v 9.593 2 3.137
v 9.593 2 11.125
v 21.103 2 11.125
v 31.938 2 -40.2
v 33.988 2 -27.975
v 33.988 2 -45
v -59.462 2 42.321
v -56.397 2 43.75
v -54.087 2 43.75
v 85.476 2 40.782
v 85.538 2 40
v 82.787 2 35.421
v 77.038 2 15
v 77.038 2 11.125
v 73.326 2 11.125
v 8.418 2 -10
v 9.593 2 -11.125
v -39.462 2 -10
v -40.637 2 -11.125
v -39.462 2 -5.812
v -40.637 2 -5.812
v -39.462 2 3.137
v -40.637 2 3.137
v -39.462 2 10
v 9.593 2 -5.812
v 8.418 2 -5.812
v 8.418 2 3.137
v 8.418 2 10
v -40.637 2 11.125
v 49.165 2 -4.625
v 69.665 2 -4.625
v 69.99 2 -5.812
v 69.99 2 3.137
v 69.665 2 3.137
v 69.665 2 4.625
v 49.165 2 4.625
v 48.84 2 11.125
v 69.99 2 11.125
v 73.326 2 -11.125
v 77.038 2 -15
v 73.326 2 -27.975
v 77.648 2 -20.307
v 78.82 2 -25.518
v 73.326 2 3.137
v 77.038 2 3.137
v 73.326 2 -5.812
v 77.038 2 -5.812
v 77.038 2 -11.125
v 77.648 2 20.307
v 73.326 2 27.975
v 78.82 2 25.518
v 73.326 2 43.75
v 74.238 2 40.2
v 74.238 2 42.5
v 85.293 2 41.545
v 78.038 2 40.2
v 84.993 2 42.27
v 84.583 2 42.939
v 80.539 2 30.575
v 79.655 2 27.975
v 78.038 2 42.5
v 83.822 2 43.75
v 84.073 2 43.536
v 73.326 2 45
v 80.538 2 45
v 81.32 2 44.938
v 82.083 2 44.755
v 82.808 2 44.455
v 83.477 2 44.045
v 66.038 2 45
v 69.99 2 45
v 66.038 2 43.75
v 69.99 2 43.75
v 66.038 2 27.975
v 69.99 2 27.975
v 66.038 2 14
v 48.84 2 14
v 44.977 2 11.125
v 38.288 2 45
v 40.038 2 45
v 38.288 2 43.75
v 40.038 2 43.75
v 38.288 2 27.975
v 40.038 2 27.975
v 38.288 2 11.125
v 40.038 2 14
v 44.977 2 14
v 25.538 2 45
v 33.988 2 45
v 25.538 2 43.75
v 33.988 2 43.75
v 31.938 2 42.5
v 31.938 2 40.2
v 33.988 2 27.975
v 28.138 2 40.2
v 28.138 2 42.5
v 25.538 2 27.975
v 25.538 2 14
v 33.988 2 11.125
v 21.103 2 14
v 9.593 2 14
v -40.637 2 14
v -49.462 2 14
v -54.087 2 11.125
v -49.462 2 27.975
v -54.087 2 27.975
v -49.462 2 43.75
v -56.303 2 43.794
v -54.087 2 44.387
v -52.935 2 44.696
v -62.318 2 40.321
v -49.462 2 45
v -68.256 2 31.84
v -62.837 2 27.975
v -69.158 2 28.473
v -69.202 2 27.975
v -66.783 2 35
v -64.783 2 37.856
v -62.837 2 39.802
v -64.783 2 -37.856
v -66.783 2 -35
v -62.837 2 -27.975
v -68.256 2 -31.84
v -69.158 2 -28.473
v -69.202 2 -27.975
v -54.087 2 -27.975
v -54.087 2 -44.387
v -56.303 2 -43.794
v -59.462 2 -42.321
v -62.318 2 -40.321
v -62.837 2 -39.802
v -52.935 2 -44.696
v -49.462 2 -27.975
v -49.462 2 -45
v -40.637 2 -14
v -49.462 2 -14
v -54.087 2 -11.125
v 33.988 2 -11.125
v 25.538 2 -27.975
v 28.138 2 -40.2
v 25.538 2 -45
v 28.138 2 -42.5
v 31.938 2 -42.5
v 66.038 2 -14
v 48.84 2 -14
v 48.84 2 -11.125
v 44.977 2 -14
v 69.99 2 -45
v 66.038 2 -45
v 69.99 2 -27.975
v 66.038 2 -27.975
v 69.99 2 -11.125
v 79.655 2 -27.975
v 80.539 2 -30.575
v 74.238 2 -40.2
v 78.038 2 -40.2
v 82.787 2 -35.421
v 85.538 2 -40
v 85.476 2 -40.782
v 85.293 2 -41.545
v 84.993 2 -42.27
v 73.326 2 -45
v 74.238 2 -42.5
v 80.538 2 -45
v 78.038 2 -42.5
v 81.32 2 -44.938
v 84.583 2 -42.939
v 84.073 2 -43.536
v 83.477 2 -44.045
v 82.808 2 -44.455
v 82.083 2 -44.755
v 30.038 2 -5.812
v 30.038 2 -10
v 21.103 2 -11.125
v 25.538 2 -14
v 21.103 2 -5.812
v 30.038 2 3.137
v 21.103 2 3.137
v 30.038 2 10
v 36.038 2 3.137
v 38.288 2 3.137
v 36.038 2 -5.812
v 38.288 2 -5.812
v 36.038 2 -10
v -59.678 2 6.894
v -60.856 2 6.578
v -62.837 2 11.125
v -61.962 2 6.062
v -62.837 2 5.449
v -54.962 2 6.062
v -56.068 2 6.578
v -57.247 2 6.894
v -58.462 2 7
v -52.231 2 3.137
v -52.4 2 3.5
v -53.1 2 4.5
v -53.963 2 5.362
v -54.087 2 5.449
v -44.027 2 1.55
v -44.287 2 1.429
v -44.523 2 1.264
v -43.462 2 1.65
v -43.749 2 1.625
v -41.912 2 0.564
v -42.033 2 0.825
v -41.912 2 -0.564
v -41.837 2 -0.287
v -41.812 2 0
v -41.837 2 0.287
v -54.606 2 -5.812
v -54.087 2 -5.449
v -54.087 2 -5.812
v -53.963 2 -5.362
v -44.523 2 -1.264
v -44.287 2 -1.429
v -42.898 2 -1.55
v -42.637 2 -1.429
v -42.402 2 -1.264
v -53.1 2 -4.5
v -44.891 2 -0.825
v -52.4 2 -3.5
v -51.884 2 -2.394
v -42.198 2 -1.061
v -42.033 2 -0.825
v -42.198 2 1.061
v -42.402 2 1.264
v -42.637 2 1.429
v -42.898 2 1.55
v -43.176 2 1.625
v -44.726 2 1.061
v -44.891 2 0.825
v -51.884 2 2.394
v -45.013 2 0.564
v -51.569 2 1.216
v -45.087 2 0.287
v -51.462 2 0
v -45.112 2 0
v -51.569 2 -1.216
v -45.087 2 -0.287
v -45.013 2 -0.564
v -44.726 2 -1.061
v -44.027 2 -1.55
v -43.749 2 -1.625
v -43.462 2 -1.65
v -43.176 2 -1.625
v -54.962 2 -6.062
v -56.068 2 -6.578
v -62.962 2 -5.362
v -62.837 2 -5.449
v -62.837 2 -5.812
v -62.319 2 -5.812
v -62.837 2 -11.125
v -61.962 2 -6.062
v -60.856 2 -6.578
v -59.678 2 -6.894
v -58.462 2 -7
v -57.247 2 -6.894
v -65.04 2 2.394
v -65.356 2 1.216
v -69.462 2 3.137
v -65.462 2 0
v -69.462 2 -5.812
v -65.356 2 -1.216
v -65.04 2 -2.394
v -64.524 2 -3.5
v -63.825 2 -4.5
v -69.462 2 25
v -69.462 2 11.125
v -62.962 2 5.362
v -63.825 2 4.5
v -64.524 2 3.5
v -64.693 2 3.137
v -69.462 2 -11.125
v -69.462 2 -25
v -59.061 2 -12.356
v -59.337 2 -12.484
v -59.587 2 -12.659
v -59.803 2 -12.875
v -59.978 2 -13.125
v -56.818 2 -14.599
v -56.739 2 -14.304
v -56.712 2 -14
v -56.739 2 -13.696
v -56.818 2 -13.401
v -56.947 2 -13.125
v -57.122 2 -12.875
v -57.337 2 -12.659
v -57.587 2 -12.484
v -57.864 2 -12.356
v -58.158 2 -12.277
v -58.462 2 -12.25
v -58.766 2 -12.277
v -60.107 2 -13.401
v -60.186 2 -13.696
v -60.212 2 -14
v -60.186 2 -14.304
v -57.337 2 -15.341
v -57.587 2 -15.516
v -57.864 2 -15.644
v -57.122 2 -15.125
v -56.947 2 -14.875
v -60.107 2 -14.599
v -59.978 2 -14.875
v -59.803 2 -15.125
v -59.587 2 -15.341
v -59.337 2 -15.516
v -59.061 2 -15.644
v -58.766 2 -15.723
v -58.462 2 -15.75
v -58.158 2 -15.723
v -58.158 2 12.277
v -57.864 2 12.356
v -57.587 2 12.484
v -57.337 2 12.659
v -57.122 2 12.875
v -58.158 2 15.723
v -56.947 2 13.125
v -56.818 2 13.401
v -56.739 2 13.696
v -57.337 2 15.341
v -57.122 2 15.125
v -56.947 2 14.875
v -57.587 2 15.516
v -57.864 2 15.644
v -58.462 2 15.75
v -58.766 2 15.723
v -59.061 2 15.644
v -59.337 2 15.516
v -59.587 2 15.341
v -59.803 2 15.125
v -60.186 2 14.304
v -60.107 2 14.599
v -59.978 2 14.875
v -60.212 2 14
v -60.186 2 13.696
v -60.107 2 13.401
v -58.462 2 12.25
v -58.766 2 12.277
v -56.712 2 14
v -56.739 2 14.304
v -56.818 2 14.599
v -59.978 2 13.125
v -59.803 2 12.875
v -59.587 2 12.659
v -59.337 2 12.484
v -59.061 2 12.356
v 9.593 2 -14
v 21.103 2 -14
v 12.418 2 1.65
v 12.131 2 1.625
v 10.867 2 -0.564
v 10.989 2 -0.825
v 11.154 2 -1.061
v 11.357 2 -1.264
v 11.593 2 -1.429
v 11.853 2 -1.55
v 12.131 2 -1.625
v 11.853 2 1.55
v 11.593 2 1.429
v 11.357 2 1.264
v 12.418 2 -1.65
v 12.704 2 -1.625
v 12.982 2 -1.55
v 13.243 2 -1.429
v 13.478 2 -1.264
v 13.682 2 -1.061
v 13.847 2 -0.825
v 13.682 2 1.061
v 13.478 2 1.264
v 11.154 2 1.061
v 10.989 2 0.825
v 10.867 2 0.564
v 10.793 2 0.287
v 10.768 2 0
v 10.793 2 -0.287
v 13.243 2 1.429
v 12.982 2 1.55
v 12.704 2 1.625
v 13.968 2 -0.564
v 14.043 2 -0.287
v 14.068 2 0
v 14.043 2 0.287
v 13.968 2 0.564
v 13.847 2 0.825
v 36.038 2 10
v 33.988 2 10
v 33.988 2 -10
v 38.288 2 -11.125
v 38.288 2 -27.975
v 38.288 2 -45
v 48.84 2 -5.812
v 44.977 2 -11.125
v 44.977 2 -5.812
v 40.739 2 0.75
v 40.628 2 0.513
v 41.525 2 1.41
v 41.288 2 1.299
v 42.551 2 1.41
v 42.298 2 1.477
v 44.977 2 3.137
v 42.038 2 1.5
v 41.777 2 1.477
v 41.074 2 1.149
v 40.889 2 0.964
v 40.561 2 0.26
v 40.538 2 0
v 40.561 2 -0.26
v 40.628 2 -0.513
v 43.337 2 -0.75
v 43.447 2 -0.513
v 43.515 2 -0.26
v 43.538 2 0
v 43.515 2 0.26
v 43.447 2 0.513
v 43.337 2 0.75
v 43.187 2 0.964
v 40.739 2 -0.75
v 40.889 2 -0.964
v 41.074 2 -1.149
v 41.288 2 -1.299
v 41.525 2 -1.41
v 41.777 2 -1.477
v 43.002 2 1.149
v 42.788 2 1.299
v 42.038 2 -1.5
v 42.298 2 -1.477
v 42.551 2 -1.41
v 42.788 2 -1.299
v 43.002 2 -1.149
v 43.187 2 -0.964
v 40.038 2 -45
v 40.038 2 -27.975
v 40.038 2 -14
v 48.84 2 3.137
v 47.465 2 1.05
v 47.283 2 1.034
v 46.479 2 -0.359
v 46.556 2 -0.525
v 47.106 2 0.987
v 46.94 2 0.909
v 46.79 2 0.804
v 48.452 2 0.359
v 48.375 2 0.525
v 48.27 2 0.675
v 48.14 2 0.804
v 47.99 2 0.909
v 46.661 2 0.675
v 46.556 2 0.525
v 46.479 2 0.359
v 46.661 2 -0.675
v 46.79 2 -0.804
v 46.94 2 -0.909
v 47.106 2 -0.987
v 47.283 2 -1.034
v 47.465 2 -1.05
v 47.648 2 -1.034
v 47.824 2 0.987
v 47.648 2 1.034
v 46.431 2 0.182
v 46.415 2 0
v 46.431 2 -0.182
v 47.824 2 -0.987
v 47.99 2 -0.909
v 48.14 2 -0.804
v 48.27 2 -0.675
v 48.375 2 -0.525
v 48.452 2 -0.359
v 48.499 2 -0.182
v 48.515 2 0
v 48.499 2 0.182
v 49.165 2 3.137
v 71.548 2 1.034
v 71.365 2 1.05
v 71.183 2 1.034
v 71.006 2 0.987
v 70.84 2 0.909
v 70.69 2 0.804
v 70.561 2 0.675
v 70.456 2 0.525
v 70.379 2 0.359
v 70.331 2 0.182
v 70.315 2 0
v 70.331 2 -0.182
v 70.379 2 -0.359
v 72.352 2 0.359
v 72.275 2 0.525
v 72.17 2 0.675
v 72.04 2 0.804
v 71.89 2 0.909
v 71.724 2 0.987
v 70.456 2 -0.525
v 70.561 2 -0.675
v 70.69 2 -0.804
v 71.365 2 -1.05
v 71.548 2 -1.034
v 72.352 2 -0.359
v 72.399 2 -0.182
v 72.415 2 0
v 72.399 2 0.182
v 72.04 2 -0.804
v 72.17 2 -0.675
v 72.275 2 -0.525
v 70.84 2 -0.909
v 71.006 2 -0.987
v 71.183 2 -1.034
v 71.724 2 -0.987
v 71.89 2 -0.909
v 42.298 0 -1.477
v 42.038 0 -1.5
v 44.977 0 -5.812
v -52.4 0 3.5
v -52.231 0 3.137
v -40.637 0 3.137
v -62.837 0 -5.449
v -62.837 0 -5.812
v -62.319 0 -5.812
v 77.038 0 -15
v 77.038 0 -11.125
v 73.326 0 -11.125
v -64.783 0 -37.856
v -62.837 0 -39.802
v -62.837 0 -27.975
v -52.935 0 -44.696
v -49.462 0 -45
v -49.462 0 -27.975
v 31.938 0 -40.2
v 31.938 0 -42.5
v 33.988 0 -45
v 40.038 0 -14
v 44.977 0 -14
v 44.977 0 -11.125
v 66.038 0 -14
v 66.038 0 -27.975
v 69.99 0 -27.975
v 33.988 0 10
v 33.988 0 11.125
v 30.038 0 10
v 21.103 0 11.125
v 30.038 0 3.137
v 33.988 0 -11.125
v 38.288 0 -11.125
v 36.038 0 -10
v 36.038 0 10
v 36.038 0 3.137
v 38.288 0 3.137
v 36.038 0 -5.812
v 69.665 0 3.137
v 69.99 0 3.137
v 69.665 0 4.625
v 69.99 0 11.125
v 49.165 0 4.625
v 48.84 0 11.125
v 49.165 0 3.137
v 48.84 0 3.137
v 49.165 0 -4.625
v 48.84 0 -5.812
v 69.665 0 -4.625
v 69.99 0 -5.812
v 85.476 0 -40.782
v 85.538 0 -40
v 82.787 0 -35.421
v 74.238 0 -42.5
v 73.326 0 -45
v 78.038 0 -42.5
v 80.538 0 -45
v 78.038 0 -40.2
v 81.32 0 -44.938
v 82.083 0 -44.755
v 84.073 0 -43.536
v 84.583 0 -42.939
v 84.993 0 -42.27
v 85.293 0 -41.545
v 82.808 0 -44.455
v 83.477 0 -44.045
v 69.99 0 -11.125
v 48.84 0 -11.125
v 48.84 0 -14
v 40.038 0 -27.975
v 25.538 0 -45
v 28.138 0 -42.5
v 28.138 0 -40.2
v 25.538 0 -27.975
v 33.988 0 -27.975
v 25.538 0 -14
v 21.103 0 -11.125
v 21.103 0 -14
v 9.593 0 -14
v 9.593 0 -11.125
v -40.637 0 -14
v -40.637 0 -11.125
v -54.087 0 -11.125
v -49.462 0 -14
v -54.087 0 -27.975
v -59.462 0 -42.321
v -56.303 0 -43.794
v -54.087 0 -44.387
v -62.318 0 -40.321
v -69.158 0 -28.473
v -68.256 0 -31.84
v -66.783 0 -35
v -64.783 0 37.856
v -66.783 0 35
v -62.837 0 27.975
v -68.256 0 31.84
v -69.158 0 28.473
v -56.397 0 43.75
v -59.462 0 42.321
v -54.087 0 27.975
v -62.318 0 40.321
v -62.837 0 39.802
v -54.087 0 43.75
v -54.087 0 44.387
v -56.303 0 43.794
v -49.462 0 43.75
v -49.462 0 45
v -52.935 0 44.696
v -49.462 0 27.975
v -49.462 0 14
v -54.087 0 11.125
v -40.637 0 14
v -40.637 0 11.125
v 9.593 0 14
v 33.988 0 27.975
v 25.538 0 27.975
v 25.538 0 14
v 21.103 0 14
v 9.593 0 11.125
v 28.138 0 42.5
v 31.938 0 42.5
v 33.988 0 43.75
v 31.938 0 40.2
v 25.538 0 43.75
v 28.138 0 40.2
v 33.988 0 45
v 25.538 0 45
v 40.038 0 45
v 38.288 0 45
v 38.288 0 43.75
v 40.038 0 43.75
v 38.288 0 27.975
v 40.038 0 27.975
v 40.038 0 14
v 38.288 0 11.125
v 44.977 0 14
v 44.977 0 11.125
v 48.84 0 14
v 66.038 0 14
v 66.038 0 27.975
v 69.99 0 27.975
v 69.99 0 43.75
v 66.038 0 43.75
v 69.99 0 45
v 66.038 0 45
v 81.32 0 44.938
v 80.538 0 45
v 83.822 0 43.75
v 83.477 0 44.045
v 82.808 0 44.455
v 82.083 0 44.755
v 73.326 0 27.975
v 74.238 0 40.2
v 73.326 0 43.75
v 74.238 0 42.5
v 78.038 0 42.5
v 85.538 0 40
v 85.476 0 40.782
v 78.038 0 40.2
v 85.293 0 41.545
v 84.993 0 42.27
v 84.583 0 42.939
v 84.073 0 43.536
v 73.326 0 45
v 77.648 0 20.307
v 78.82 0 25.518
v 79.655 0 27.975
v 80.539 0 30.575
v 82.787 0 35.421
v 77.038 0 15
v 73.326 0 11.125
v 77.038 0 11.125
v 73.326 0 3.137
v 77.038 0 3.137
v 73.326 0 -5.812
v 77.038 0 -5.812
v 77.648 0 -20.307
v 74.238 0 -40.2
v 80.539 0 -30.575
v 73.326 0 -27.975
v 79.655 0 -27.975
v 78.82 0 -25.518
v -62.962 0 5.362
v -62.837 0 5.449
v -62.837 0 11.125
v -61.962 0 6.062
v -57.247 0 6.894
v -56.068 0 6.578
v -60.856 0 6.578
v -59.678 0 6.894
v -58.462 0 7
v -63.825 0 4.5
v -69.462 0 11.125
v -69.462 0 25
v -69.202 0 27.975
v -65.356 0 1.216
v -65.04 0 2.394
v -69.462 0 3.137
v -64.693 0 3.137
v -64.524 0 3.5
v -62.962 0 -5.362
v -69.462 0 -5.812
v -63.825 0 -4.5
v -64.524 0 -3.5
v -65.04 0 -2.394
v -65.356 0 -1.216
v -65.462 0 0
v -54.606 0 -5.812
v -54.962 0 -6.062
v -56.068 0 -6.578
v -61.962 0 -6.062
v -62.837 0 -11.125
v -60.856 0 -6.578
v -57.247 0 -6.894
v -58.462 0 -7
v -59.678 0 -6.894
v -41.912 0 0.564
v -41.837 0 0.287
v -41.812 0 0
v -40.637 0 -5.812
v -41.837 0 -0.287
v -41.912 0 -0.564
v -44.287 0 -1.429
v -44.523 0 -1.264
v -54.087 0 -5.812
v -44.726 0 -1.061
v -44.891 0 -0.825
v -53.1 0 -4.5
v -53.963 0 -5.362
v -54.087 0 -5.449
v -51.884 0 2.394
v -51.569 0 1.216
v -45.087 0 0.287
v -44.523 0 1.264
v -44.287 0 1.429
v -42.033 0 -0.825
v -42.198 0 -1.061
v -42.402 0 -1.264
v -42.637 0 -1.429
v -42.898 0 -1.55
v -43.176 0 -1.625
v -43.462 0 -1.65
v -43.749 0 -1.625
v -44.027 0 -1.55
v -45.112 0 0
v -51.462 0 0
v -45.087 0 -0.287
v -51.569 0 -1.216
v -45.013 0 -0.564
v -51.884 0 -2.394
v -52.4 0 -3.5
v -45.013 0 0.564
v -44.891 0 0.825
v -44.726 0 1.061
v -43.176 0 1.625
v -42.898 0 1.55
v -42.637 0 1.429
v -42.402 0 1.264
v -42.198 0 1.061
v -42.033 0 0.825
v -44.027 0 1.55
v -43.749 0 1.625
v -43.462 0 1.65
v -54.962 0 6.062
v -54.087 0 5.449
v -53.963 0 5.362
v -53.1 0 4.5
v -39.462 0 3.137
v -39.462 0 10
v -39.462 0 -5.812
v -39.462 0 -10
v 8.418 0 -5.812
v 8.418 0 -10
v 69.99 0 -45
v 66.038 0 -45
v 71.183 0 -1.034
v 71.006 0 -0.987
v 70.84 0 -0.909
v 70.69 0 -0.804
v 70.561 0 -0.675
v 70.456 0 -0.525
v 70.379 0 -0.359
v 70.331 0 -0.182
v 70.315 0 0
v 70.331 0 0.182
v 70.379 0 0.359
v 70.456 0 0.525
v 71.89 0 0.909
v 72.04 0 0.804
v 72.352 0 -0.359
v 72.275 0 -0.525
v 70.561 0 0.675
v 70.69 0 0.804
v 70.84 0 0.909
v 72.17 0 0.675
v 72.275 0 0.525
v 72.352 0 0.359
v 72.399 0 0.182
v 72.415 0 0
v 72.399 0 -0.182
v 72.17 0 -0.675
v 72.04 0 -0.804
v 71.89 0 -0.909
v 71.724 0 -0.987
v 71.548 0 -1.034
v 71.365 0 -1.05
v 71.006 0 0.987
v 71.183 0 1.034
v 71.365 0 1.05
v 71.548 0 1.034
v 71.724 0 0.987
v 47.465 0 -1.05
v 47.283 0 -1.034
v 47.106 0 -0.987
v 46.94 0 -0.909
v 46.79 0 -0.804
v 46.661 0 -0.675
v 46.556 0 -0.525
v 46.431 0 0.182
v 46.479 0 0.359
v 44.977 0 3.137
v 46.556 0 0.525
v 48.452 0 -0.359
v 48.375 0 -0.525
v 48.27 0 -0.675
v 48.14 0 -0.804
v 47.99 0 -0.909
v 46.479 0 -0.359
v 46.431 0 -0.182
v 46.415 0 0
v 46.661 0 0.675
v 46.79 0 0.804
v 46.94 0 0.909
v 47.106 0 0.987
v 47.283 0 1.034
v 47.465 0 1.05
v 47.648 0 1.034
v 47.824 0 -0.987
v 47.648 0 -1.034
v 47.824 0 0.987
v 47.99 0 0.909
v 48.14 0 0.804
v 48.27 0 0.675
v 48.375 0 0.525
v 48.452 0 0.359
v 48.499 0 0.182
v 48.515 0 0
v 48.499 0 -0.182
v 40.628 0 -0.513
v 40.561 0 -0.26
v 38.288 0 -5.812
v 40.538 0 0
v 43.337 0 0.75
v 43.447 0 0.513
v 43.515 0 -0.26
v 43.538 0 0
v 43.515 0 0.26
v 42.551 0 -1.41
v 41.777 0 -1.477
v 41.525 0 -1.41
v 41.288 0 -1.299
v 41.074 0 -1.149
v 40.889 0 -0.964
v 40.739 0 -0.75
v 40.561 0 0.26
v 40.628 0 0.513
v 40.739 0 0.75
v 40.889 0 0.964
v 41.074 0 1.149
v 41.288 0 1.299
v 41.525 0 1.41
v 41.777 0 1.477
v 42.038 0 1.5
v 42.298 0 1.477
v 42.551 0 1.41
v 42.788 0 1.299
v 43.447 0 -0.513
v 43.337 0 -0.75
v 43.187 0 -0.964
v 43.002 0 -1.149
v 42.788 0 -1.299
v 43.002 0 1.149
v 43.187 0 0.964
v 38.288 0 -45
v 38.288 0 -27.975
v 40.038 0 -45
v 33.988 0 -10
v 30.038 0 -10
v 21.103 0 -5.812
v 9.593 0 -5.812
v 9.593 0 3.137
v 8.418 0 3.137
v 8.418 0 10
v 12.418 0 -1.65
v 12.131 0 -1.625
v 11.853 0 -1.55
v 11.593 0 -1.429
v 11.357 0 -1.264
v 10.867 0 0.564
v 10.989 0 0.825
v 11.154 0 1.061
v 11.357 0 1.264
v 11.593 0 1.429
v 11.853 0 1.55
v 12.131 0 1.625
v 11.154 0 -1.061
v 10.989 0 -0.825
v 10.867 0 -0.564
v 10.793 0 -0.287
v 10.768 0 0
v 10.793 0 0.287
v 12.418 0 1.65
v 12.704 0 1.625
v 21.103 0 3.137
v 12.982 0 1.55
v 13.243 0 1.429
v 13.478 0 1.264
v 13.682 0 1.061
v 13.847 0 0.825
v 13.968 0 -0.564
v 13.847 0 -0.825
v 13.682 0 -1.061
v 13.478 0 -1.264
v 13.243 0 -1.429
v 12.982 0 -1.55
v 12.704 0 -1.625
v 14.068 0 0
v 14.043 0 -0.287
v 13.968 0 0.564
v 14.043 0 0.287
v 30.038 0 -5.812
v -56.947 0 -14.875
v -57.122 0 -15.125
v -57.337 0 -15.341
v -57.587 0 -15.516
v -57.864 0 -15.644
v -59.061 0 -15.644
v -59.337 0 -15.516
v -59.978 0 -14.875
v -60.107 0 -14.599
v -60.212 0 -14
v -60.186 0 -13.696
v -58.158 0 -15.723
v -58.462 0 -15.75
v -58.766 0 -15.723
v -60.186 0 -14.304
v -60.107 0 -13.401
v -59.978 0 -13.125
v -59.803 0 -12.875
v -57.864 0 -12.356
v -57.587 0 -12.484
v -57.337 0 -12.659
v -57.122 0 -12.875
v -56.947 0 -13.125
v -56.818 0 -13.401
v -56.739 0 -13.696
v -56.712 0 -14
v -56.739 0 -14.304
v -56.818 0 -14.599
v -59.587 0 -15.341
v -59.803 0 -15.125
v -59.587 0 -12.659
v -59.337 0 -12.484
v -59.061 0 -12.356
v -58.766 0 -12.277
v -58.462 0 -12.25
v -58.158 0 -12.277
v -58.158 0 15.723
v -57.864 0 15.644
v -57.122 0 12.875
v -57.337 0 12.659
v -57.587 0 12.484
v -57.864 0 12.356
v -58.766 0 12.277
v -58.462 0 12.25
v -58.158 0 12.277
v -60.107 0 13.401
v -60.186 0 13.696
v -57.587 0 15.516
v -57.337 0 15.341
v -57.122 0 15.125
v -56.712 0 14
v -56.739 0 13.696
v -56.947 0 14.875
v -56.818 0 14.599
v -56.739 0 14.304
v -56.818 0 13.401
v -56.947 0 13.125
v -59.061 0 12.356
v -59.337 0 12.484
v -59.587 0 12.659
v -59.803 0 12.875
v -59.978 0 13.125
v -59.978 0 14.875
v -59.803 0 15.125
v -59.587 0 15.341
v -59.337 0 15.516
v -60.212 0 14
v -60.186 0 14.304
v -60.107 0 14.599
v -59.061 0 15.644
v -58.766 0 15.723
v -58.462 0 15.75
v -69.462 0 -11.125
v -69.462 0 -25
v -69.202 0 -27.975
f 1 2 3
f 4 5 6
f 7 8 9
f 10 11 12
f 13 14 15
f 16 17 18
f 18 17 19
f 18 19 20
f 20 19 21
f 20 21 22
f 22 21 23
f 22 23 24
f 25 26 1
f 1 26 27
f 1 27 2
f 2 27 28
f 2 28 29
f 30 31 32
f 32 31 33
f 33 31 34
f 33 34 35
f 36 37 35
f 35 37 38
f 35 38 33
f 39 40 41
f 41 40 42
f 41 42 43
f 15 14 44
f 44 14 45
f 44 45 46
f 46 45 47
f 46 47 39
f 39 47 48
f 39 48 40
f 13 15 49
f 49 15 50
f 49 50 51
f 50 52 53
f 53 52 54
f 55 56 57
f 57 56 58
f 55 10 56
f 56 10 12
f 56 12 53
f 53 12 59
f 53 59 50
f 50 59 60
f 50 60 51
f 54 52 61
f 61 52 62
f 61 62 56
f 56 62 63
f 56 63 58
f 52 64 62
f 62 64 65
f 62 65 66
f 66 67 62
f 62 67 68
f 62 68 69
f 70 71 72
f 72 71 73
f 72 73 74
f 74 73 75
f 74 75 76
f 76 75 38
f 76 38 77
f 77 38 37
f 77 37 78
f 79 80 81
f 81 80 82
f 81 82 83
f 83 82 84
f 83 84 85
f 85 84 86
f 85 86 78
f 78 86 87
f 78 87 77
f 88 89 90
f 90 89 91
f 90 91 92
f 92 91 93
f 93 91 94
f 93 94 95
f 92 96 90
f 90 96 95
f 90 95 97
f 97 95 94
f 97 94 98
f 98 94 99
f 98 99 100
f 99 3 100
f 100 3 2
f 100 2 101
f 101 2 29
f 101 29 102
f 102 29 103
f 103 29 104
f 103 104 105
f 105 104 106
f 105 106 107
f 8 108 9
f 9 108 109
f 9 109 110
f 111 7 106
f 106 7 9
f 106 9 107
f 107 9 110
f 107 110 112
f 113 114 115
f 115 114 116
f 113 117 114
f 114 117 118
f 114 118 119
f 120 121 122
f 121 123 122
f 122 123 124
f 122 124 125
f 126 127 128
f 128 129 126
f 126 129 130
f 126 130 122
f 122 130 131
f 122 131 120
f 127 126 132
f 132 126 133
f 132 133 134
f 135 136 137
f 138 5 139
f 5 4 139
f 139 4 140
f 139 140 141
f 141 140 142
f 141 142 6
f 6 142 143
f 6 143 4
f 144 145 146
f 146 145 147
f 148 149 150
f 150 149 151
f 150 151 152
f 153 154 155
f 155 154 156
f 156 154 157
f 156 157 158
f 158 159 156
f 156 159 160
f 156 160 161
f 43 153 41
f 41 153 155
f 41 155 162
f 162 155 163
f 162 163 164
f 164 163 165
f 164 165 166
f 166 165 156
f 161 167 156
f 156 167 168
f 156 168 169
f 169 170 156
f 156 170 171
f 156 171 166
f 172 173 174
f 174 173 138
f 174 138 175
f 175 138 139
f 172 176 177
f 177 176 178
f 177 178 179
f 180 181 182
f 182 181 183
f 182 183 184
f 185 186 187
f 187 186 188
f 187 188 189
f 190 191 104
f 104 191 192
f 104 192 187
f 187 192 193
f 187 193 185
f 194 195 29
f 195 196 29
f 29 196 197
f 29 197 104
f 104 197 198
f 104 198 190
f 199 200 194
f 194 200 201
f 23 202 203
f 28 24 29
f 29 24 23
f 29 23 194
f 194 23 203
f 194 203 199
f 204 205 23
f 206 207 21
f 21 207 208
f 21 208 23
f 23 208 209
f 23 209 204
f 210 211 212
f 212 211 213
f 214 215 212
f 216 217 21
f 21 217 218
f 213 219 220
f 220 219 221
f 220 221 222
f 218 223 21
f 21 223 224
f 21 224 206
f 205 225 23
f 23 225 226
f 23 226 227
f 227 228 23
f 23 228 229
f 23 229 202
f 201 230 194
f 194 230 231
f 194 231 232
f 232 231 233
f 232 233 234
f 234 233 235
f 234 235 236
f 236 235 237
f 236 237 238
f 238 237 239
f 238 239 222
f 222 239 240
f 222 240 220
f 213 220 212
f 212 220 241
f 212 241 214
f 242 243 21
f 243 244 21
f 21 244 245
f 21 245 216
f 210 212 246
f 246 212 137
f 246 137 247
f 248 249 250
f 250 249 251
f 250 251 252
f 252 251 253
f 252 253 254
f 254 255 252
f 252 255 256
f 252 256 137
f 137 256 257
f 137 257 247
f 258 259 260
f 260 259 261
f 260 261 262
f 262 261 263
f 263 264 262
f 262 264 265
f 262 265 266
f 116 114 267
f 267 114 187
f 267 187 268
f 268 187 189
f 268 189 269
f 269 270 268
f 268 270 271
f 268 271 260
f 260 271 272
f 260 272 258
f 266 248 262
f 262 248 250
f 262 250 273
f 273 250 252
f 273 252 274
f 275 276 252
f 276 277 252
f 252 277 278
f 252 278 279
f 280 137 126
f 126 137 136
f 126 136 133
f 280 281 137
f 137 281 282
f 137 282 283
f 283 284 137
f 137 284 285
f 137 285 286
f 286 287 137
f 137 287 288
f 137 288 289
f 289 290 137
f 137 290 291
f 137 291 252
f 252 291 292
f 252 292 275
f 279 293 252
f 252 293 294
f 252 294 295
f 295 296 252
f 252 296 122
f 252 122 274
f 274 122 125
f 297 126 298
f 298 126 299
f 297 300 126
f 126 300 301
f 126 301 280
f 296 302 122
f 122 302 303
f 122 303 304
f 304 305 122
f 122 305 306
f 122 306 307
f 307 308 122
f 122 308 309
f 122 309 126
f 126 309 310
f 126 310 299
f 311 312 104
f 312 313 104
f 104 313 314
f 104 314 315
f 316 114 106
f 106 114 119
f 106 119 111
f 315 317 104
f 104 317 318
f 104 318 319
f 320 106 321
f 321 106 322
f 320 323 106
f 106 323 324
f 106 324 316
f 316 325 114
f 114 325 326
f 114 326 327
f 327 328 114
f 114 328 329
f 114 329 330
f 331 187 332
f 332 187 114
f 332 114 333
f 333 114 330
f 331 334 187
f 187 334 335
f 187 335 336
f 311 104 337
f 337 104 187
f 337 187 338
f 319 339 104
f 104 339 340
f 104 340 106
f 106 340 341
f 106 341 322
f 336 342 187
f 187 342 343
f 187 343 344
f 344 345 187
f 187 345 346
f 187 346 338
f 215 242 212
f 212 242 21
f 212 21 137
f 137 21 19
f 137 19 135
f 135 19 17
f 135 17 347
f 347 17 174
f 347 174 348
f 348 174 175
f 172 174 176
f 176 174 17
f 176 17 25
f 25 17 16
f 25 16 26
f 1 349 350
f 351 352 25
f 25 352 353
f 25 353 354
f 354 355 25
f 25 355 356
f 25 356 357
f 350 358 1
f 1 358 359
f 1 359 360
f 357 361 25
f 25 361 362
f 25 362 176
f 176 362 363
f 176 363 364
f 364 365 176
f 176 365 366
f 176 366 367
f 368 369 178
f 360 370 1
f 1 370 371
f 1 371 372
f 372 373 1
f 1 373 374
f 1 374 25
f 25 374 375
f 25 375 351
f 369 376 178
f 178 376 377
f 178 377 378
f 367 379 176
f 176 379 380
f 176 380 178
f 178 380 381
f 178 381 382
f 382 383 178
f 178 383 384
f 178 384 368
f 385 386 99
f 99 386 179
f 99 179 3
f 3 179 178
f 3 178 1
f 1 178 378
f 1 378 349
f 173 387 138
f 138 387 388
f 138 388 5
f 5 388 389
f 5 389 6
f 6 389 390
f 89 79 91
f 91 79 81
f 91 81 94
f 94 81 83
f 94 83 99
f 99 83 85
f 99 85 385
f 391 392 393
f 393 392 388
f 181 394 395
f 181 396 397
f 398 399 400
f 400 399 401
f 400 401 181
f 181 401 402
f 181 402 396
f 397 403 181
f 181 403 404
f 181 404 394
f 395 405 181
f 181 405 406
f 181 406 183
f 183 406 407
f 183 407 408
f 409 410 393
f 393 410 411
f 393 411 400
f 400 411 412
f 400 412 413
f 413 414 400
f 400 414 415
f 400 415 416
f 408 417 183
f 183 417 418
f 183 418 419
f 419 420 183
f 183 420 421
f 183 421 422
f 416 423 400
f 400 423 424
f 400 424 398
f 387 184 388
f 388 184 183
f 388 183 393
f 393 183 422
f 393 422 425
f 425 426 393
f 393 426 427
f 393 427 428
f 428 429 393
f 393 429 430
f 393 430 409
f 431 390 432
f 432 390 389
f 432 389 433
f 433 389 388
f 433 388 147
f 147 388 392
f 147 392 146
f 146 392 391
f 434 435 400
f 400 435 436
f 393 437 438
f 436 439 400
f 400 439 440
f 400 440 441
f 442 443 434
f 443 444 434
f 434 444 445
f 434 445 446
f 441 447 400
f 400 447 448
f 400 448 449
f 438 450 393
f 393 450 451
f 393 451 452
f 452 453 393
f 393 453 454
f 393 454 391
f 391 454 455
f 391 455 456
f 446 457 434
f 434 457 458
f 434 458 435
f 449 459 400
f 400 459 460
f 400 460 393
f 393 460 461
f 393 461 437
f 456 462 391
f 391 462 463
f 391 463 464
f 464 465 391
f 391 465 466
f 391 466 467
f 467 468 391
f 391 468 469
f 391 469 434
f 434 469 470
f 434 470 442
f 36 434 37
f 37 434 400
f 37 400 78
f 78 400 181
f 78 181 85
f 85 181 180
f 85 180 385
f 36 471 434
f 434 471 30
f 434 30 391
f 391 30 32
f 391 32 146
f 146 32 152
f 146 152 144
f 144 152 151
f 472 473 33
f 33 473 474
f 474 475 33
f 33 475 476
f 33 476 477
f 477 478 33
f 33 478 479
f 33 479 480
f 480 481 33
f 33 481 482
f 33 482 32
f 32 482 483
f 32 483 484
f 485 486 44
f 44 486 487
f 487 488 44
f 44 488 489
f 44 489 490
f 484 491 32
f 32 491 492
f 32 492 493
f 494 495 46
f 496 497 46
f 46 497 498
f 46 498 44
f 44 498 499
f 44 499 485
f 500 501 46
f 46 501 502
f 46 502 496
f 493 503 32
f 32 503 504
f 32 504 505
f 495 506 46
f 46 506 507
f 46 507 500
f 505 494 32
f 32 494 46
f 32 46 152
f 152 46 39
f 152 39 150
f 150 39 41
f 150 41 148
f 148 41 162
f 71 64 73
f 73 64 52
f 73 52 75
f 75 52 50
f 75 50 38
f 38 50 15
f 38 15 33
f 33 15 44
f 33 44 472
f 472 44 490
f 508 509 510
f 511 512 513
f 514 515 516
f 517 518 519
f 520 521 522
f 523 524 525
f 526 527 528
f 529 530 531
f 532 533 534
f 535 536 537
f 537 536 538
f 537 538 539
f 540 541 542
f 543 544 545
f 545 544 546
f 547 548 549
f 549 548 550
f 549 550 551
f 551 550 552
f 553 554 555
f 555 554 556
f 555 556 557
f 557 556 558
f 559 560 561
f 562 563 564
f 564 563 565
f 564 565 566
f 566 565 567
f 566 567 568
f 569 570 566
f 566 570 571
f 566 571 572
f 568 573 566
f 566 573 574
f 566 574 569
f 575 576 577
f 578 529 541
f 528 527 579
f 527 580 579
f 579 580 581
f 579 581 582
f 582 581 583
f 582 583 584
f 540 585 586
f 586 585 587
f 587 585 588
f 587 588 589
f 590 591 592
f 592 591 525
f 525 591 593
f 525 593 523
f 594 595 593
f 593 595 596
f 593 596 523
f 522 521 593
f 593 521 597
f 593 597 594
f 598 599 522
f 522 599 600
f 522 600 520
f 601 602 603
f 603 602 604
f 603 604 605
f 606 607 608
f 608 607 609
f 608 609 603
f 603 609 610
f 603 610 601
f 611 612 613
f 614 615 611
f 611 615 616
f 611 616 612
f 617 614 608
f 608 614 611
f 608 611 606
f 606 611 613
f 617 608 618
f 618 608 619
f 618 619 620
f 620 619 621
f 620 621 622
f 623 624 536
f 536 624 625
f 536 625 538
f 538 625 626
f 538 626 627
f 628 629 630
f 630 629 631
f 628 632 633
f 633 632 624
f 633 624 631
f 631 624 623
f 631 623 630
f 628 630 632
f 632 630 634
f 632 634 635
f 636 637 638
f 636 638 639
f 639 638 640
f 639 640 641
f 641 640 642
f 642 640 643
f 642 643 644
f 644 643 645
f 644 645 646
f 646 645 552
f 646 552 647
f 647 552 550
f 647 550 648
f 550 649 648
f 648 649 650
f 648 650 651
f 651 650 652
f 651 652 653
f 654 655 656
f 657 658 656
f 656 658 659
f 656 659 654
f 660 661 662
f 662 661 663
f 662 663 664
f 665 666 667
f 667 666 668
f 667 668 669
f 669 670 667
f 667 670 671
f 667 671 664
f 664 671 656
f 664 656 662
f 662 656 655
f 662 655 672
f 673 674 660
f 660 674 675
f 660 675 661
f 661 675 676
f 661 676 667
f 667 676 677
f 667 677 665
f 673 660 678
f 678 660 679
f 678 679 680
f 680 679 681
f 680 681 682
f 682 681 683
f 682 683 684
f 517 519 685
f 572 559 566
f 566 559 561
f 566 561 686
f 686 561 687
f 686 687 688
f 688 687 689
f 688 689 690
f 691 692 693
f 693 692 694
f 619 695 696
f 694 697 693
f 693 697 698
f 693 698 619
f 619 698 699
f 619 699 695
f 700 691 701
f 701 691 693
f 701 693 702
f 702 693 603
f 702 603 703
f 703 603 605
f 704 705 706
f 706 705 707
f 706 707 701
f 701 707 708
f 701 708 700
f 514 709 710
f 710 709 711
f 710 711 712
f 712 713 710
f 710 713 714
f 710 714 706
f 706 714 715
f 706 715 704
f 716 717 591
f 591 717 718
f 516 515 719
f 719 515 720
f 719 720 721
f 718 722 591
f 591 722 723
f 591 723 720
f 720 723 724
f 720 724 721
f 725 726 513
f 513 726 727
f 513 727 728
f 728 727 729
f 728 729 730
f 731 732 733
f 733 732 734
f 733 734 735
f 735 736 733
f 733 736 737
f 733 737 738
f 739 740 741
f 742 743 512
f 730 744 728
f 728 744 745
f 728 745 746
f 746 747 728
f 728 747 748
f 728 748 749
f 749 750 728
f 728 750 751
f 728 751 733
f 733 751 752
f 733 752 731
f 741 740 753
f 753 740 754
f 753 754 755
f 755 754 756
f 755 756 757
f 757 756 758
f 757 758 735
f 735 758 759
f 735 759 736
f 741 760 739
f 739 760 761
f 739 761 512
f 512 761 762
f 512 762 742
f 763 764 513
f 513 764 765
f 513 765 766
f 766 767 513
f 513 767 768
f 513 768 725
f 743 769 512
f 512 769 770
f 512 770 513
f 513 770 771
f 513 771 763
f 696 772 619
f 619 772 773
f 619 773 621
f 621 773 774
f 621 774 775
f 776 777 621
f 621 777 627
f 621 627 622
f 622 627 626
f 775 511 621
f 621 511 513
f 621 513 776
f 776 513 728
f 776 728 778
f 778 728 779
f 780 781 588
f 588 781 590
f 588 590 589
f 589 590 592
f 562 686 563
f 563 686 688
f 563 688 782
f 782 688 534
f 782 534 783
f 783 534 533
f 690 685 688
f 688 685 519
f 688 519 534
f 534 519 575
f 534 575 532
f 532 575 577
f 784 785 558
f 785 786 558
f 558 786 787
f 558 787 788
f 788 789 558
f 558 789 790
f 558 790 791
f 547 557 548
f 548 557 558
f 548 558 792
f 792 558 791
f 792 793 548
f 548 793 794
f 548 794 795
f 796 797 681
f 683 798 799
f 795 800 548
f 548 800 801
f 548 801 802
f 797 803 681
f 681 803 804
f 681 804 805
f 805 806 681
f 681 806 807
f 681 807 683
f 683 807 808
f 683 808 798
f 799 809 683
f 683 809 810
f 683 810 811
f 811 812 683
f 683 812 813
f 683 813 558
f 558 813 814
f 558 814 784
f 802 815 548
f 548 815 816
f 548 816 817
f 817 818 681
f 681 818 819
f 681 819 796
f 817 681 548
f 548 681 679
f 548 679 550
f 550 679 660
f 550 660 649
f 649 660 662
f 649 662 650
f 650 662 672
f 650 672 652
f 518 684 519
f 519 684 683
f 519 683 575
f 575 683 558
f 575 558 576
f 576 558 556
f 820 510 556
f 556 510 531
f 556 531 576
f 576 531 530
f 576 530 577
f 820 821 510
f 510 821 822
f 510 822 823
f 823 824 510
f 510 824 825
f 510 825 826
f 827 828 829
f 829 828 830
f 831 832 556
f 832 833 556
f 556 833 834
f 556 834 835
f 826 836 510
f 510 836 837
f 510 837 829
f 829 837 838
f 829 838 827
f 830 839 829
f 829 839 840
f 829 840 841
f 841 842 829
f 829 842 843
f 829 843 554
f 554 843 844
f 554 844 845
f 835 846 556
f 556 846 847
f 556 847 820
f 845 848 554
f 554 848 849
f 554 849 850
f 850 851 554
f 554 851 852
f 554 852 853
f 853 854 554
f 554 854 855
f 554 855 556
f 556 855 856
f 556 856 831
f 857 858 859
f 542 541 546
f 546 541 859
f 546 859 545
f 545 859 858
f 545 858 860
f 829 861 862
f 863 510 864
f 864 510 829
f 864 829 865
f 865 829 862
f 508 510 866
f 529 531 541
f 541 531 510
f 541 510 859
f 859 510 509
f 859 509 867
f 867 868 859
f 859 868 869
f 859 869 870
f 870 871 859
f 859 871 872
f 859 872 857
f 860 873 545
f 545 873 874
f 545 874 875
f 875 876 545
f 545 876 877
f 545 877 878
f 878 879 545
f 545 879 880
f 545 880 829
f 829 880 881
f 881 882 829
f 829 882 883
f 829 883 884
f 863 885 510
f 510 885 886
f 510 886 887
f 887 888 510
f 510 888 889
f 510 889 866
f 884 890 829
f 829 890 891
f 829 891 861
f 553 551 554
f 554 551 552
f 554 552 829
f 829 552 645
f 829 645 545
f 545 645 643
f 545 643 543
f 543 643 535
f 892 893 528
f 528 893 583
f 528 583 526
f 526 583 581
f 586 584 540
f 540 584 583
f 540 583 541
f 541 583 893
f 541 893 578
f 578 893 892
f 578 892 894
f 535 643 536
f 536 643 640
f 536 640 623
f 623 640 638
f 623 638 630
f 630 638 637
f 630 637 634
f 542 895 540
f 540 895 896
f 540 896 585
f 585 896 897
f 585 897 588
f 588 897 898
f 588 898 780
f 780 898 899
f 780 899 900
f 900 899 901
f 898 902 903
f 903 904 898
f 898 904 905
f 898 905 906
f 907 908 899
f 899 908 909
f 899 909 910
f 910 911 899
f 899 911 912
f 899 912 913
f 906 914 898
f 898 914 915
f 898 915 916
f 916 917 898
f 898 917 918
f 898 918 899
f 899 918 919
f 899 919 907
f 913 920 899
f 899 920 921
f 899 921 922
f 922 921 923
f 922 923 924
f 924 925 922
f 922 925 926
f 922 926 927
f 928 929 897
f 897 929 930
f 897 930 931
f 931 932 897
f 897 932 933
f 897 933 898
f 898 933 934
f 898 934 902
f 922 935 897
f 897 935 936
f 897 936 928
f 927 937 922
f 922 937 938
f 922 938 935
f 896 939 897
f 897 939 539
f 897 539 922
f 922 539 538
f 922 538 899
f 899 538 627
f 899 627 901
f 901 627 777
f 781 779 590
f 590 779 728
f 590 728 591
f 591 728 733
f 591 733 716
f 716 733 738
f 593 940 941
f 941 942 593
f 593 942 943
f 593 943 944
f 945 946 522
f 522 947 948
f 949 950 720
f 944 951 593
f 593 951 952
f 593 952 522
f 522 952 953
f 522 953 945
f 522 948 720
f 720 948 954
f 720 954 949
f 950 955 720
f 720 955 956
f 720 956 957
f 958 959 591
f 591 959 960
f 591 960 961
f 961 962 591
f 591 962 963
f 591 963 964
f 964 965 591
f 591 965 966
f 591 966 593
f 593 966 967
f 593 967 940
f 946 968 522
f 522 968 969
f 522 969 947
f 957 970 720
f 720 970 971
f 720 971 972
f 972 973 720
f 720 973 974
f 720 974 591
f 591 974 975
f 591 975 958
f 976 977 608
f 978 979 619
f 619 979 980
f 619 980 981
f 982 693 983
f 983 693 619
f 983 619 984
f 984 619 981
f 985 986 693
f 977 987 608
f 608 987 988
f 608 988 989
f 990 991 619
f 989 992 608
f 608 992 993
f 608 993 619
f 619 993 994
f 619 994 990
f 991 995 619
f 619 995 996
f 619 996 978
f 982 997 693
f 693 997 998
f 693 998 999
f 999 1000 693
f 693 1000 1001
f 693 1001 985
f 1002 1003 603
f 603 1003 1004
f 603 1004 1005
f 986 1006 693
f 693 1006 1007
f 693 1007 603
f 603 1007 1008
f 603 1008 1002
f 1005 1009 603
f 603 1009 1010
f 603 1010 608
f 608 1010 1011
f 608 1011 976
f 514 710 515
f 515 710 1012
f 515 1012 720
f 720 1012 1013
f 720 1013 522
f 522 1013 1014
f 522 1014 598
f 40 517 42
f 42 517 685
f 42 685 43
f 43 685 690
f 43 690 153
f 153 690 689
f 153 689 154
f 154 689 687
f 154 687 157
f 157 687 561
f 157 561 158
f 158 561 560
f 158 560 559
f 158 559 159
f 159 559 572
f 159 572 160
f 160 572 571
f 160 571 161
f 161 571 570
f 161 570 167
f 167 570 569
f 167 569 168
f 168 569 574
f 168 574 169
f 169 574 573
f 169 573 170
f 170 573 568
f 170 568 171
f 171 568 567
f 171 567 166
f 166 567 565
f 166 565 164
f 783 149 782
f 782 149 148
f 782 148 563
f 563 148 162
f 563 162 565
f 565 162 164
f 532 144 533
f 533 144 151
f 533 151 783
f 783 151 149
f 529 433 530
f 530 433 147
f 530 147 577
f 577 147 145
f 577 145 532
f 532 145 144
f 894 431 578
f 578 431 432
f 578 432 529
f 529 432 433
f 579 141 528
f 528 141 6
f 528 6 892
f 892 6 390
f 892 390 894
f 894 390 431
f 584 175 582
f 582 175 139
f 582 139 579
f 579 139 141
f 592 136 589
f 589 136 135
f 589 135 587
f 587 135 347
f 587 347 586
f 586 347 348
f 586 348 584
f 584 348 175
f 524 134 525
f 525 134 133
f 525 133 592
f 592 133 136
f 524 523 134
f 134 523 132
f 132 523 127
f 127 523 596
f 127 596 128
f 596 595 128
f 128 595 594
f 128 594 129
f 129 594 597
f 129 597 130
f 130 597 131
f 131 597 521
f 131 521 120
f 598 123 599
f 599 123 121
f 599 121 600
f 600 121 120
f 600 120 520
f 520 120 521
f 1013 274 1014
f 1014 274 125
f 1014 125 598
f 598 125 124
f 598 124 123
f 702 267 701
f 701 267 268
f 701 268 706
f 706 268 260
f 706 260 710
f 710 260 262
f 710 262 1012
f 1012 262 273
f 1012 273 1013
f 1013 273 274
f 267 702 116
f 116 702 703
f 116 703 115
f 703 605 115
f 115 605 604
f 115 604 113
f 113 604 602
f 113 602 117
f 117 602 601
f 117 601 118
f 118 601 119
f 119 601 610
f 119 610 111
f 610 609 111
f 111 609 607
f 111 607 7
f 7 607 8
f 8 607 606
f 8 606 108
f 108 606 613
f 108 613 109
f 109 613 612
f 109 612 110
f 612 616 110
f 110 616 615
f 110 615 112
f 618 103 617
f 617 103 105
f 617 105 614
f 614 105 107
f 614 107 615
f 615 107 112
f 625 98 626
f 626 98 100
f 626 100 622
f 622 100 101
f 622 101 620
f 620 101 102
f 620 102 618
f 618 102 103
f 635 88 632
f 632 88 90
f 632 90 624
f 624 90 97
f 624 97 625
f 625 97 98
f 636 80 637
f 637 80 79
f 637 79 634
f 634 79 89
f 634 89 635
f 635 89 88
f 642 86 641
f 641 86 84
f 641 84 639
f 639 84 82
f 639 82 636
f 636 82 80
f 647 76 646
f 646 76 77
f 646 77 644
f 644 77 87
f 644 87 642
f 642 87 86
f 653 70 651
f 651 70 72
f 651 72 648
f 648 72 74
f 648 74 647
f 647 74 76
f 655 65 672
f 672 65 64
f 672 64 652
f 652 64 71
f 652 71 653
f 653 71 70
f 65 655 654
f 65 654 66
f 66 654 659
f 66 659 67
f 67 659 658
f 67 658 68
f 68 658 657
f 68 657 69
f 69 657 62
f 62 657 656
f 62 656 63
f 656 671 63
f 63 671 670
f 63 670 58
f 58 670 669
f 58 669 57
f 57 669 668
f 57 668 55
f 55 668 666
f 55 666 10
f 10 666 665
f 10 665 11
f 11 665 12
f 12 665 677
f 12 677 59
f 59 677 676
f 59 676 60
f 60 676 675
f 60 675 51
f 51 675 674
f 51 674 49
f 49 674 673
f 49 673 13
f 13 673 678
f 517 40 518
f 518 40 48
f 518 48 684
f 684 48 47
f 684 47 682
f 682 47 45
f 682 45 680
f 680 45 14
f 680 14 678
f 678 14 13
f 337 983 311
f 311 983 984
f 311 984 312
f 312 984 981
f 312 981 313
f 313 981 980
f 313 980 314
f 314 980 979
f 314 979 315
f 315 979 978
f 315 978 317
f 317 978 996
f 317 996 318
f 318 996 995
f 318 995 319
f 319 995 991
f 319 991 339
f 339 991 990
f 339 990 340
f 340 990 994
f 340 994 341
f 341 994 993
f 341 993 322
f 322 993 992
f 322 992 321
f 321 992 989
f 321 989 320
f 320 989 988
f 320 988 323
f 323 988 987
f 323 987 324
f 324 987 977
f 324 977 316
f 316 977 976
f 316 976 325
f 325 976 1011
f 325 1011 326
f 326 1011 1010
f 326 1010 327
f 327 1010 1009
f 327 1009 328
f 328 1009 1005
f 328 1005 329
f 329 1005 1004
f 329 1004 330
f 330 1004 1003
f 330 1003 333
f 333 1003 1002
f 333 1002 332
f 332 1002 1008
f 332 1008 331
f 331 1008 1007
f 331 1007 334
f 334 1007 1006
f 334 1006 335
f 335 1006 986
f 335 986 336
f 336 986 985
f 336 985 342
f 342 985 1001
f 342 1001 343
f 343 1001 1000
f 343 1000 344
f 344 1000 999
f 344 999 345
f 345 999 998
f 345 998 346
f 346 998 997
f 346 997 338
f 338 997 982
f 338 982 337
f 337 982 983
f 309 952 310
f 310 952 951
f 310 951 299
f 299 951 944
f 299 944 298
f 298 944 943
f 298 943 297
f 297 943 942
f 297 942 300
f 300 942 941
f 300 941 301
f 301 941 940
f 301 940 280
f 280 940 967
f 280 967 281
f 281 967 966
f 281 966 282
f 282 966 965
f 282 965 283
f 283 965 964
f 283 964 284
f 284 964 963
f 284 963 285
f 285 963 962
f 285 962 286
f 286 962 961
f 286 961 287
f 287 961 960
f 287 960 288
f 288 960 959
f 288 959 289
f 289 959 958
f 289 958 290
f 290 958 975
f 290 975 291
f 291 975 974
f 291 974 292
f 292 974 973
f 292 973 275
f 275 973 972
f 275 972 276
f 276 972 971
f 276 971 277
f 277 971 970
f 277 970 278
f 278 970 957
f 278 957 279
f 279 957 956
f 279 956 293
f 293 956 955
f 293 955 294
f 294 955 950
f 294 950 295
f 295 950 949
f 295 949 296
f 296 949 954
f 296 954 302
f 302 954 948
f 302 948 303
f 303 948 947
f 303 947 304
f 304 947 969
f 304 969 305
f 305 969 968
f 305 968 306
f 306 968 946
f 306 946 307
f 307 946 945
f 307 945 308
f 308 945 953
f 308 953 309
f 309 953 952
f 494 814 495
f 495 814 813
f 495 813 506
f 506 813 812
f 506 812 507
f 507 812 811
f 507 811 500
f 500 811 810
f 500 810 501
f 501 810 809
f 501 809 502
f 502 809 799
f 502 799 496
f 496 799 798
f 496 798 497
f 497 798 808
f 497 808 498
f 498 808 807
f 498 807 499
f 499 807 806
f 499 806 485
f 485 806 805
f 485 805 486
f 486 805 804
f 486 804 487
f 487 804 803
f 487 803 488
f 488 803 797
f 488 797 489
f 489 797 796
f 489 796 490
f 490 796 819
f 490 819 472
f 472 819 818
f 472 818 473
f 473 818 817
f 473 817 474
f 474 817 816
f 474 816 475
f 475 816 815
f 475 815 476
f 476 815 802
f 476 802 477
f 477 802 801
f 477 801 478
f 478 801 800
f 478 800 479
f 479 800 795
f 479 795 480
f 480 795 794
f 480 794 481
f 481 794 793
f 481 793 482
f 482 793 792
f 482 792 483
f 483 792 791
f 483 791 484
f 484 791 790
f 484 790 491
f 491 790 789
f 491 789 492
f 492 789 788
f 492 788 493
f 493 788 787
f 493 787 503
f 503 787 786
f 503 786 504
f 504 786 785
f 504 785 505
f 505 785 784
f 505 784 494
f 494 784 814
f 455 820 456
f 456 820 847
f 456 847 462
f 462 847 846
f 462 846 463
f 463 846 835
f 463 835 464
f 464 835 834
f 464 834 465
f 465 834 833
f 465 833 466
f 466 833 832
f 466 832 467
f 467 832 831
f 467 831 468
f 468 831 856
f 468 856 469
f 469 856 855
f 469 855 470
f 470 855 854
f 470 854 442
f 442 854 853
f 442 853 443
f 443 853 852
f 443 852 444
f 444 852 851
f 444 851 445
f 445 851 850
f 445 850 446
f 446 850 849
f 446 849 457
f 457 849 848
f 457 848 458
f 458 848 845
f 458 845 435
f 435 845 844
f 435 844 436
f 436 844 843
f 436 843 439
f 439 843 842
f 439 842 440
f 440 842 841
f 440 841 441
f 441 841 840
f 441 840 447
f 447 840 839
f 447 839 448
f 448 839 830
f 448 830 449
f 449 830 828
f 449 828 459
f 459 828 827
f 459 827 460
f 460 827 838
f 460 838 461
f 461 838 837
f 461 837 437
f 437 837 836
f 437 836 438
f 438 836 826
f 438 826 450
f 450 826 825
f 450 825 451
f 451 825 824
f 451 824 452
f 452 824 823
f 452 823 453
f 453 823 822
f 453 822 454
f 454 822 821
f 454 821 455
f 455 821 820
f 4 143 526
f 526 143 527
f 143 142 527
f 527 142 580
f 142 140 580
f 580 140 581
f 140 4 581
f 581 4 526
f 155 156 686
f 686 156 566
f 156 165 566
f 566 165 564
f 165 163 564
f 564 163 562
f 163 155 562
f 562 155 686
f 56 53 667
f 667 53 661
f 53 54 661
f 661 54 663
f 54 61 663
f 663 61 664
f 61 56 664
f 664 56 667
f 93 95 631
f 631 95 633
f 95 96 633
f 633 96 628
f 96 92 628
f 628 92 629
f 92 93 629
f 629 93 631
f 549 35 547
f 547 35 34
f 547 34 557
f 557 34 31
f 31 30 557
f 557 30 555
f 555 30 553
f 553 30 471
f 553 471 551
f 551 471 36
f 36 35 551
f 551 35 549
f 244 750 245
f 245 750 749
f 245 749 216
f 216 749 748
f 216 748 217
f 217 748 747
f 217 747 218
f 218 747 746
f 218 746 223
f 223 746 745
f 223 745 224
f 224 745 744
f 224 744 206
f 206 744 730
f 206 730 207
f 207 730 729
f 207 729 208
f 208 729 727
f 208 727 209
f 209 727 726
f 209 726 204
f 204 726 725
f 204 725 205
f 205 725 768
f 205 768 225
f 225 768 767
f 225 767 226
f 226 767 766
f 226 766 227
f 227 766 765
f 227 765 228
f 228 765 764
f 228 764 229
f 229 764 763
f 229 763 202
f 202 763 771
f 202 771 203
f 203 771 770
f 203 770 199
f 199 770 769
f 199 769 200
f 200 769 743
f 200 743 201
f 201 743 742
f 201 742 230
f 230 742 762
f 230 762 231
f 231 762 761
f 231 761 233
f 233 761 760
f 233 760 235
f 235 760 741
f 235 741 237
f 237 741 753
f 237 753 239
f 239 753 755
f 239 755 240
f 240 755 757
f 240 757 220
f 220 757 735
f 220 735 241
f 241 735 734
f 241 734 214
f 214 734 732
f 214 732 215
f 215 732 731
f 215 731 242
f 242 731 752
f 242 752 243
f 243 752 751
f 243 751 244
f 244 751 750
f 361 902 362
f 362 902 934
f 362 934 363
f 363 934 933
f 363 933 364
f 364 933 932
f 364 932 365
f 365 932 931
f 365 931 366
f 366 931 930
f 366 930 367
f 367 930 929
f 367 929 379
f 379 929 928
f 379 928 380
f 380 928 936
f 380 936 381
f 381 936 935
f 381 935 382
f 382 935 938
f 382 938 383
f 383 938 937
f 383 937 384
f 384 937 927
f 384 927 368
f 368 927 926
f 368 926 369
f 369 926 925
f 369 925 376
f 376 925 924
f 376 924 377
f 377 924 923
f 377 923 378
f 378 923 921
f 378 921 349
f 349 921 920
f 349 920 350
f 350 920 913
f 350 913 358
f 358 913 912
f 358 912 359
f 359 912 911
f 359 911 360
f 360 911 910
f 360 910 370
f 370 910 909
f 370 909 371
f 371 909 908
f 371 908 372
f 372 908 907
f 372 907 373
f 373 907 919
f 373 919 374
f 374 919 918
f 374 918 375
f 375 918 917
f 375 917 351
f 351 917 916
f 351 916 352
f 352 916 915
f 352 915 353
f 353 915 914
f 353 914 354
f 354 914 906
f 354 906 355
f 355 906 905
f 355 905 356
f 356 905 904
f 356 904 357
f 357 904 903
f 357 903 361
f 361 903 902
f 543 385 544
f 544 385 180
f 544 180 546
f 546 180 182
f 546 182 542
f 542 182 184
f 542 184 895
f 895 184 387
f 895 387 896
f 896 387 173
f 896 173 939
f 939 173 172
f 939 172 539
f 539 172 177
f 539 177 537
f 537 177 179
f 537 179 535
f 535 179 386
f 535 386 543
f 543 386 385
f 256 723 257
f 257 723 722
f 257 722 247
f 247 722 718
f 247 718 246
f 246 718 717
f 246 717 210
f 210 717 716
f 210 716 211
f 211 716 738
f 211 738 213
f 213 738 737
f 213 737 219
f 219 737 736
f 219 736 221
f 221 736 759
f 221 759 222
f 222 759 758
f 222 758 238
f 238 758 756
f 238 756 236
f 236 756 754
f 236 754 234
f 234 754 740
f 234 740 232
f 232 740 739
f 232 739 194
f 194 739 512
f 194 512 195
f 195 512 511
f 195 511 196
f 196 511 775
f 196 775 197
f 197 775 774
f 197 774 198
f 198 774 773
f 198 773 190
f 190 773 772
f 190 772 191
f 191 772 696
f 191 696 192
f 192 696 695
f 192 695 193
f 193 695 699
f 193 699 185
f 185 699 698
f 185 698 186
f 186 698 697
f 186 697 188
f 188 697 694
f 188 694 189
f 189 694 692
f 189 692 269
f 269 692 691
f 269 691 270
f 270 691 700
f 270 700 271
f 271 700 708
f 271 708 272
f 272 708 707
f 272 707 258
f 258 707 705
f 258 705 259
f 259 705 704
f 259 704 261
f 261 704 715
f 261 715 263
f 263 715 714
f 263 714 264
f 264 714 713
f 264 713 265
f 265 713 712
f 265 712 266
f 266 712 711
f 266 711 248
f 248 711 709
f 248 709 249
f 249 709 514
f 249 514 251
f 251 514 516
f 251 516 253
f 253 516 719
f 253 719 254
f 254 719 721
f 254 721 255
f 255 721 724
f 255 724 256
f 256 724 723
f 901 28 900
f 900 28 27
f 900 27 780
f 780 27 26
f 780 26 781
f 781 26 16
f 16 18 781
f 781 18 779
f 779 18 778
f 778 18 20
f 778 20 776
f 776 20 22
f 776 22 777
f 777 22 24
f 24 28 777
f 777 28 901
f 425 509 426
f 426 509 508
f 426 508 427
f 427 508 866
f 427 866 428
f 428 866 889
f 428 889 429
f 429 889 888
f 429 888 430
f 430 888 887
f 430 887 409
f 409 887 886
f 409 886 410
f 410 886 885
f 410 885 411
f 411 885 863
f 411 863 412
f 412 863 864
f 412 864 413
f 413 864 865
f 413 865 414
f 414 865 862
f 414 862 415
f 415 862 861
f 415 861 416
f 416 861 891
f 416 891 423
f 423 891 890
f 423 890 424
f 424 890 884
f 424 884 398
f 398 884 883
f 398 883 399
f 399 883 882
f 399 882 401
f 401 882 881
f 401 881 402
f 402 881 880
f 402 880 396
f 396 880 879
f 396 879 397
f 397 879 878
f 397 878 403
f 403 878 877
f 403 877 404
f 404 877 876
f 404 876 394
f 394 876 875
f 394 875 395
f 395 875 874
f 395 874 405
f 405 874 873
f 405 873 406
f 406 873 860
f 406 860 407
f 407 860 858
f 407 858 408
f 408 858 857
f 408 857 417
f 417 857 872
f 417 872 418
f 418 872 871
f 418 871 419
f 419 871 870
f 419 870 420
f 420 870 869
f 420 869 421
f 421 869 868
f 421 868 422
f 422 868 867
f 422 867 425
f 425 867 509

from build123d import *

# Parameters (mm, degrees)
CROQUIS1_R              = 1.75
CROQUIS1_R_2            = 1.05
CROQUIS1_R_3            = 1.65
CROQUIS1_R_4            = 7
CROQUIS1_R_5            = 1.5
CROQUIS1_W              = 20.5
CROQUIS1_H              = 9.25
CROQUIS1_W_2            = 3.8
CROQUIS1_H_2            = 2.3
CROQUIS1_W_3            = 6
CROQUIS1_H_3            = 20
CROQUIS1_W_4            = 47.88
SALIENTE_EXTRUIR1_DEPTH = 2


with BuildPart() as part:
    # Croquis1 → Saliente-Extruir1 (new body)
    with BuildSketch(Plane(origin=(0, 0, 0), x_dir=(1, 0, 0), z_dir=(0, 1, 0))):
        with BuildLine():
            Line((-49.462248263, 45), (-49.462248263, 14))
            Line((-49.462248263, 14), (25.537751737, 14))
            Line((25.537751737, 14), (25.537751737, 45))
            Line((25.537751737, 45), (40.037751737, 45))
            Line((40.037751737, 45), (40.037751737, 14))
            Line((40.037751737, 14), (66.037751737, 14))
            Line((66.037751737, 14), (66.037751737, 45))
            Line((66.037751737, 45), (80.537751737, 45))
            ThreePointArc((80.537751737, 45), (84.073285643, 43.535533906), (85.537751737, 40))
            ThreePointArc((85.537751737, 40), (79.612228902, 28.069677764), (77.037751737, 15))
            Line((77.037751737, 15), (77.037751737, -15))
            ThreePointArc((77.037751737, -15), (79.612228902, -28.069677764), (85.537751737, -40))
            ThreePointArc((85.537751737, -40), (84.073285643, -43.535533906), (80.537751737, -45))
            Line((80.537751737, -45), (66.037751737, -45))
            Line((66.037751737, -45), (66.037751737, -14))
            Line((66.037751737, -14), (40.037751737, -14))
            Line((40.037751737, -14), (40.037751737, -45))
            Line((40.037751737, -45), (25.537751737, -45))
            Line((25.537751737, -45), (25.537751737, -14))
            Line((25.537751737, -14), (-49.462248263, -14))
            Line((-49.462248263, -14), (-49.462248263, -45))
            ThreePointArc((-49.462248263, -45), (-63.604383887, -39.142135624), (-69.462248263, -25))
            Line((-69.462248263, -25), (-69.462248263, 25))
            ThreePointArc((-69.462248263, 25), (-63.604383887, 39.142135624), (-49.462248263, 45))
        make_face()
        with Locations(Location((-58.462248263, -14, 0), (0, 0, 270))):
            Circle(CROQUIS1_R, mode=Mode.SUBTRACT)
        with Locations(Location((-58.462248263, 14, 0), (0, 0, 90))):
            Circle(CROQUIS1_R, mode=Mode.SUBTRACT)
        with Locations(Location((71.365251737, 0, 0), (0, 0, 270))):
            Circle(CROQUIS1_R_2, mode=Mode.SUBTRACT)
        with Locations(Location((47.465251737, 0, 0), (0, 0, 270))):
            Circle(CROQUIS1_R_2, mode=Mode.SUBTRACT)
        with Locations(Location((-43.462248263, 0, 0), (0, 0, 270))):
            Circle(CROQUIS1_R_3, mode=Mode.SUBTRACT)
        with Locations(Location((12.417751737, 0, 0), (0, 0, 270))):
            Circle(CROQUIS1_R_3, mode=Mode.SUBTRACT)
        with Locations(Location((-58.462248263, 0, 0), (0, 0, 270))):
            Circle(CROQUIS1_R_4, mode=Mode.SUBTRACT)
        with Locations(Location((42.037751737, 0, 0), (0, 0, 270))):
            Circle(CROQUIS1_R_5, mode=Mode.SUBTRACT)
        with Locations((59.415251737, 0)):
            Rectangle(CROQUIS1_W, CROQUIS1_H, mode=Mode.SUBTRACT)
        with Locations((30.037751737, 41.35)):
            Rectangle(CROQUIS1_W_2, CROQUIS1_H_2, mode=Mode.SUBTRACT)
        with Locations((76.137751737, 41.35)):
            Rectangle(CROQUIS1_W_2, CROQUIS1_H_2, mode=Mode.SUBTRACT)
        with Locations((76.137751737, -41.35)):
            Rectangle(CROQUIS1_W_2, CROQUIS1_H_2, mode=Mode.SUBTRACT)
        with Locations((30.037751737, -41.35)):
            Rectangle(CROQUIS1_W_2, CROQUIS1_H_2, mode=Mode.SUBTRACT)
        with Locations((33.037751737, 0)):
            Rectangle(CROQUIS1_W_3, CROQUIS1_H_3, mode=Mode.SUBTRACT)
        with Locations((-15.522248263, 0)):
            Rectangle(CROQUIS1_W_4, CROQUIS1_H_3, mode=Mode.SUBTRACT)
    extrude(amount=SALIENTE_EXTRUIR1_DEPTH)


solid = part.part
